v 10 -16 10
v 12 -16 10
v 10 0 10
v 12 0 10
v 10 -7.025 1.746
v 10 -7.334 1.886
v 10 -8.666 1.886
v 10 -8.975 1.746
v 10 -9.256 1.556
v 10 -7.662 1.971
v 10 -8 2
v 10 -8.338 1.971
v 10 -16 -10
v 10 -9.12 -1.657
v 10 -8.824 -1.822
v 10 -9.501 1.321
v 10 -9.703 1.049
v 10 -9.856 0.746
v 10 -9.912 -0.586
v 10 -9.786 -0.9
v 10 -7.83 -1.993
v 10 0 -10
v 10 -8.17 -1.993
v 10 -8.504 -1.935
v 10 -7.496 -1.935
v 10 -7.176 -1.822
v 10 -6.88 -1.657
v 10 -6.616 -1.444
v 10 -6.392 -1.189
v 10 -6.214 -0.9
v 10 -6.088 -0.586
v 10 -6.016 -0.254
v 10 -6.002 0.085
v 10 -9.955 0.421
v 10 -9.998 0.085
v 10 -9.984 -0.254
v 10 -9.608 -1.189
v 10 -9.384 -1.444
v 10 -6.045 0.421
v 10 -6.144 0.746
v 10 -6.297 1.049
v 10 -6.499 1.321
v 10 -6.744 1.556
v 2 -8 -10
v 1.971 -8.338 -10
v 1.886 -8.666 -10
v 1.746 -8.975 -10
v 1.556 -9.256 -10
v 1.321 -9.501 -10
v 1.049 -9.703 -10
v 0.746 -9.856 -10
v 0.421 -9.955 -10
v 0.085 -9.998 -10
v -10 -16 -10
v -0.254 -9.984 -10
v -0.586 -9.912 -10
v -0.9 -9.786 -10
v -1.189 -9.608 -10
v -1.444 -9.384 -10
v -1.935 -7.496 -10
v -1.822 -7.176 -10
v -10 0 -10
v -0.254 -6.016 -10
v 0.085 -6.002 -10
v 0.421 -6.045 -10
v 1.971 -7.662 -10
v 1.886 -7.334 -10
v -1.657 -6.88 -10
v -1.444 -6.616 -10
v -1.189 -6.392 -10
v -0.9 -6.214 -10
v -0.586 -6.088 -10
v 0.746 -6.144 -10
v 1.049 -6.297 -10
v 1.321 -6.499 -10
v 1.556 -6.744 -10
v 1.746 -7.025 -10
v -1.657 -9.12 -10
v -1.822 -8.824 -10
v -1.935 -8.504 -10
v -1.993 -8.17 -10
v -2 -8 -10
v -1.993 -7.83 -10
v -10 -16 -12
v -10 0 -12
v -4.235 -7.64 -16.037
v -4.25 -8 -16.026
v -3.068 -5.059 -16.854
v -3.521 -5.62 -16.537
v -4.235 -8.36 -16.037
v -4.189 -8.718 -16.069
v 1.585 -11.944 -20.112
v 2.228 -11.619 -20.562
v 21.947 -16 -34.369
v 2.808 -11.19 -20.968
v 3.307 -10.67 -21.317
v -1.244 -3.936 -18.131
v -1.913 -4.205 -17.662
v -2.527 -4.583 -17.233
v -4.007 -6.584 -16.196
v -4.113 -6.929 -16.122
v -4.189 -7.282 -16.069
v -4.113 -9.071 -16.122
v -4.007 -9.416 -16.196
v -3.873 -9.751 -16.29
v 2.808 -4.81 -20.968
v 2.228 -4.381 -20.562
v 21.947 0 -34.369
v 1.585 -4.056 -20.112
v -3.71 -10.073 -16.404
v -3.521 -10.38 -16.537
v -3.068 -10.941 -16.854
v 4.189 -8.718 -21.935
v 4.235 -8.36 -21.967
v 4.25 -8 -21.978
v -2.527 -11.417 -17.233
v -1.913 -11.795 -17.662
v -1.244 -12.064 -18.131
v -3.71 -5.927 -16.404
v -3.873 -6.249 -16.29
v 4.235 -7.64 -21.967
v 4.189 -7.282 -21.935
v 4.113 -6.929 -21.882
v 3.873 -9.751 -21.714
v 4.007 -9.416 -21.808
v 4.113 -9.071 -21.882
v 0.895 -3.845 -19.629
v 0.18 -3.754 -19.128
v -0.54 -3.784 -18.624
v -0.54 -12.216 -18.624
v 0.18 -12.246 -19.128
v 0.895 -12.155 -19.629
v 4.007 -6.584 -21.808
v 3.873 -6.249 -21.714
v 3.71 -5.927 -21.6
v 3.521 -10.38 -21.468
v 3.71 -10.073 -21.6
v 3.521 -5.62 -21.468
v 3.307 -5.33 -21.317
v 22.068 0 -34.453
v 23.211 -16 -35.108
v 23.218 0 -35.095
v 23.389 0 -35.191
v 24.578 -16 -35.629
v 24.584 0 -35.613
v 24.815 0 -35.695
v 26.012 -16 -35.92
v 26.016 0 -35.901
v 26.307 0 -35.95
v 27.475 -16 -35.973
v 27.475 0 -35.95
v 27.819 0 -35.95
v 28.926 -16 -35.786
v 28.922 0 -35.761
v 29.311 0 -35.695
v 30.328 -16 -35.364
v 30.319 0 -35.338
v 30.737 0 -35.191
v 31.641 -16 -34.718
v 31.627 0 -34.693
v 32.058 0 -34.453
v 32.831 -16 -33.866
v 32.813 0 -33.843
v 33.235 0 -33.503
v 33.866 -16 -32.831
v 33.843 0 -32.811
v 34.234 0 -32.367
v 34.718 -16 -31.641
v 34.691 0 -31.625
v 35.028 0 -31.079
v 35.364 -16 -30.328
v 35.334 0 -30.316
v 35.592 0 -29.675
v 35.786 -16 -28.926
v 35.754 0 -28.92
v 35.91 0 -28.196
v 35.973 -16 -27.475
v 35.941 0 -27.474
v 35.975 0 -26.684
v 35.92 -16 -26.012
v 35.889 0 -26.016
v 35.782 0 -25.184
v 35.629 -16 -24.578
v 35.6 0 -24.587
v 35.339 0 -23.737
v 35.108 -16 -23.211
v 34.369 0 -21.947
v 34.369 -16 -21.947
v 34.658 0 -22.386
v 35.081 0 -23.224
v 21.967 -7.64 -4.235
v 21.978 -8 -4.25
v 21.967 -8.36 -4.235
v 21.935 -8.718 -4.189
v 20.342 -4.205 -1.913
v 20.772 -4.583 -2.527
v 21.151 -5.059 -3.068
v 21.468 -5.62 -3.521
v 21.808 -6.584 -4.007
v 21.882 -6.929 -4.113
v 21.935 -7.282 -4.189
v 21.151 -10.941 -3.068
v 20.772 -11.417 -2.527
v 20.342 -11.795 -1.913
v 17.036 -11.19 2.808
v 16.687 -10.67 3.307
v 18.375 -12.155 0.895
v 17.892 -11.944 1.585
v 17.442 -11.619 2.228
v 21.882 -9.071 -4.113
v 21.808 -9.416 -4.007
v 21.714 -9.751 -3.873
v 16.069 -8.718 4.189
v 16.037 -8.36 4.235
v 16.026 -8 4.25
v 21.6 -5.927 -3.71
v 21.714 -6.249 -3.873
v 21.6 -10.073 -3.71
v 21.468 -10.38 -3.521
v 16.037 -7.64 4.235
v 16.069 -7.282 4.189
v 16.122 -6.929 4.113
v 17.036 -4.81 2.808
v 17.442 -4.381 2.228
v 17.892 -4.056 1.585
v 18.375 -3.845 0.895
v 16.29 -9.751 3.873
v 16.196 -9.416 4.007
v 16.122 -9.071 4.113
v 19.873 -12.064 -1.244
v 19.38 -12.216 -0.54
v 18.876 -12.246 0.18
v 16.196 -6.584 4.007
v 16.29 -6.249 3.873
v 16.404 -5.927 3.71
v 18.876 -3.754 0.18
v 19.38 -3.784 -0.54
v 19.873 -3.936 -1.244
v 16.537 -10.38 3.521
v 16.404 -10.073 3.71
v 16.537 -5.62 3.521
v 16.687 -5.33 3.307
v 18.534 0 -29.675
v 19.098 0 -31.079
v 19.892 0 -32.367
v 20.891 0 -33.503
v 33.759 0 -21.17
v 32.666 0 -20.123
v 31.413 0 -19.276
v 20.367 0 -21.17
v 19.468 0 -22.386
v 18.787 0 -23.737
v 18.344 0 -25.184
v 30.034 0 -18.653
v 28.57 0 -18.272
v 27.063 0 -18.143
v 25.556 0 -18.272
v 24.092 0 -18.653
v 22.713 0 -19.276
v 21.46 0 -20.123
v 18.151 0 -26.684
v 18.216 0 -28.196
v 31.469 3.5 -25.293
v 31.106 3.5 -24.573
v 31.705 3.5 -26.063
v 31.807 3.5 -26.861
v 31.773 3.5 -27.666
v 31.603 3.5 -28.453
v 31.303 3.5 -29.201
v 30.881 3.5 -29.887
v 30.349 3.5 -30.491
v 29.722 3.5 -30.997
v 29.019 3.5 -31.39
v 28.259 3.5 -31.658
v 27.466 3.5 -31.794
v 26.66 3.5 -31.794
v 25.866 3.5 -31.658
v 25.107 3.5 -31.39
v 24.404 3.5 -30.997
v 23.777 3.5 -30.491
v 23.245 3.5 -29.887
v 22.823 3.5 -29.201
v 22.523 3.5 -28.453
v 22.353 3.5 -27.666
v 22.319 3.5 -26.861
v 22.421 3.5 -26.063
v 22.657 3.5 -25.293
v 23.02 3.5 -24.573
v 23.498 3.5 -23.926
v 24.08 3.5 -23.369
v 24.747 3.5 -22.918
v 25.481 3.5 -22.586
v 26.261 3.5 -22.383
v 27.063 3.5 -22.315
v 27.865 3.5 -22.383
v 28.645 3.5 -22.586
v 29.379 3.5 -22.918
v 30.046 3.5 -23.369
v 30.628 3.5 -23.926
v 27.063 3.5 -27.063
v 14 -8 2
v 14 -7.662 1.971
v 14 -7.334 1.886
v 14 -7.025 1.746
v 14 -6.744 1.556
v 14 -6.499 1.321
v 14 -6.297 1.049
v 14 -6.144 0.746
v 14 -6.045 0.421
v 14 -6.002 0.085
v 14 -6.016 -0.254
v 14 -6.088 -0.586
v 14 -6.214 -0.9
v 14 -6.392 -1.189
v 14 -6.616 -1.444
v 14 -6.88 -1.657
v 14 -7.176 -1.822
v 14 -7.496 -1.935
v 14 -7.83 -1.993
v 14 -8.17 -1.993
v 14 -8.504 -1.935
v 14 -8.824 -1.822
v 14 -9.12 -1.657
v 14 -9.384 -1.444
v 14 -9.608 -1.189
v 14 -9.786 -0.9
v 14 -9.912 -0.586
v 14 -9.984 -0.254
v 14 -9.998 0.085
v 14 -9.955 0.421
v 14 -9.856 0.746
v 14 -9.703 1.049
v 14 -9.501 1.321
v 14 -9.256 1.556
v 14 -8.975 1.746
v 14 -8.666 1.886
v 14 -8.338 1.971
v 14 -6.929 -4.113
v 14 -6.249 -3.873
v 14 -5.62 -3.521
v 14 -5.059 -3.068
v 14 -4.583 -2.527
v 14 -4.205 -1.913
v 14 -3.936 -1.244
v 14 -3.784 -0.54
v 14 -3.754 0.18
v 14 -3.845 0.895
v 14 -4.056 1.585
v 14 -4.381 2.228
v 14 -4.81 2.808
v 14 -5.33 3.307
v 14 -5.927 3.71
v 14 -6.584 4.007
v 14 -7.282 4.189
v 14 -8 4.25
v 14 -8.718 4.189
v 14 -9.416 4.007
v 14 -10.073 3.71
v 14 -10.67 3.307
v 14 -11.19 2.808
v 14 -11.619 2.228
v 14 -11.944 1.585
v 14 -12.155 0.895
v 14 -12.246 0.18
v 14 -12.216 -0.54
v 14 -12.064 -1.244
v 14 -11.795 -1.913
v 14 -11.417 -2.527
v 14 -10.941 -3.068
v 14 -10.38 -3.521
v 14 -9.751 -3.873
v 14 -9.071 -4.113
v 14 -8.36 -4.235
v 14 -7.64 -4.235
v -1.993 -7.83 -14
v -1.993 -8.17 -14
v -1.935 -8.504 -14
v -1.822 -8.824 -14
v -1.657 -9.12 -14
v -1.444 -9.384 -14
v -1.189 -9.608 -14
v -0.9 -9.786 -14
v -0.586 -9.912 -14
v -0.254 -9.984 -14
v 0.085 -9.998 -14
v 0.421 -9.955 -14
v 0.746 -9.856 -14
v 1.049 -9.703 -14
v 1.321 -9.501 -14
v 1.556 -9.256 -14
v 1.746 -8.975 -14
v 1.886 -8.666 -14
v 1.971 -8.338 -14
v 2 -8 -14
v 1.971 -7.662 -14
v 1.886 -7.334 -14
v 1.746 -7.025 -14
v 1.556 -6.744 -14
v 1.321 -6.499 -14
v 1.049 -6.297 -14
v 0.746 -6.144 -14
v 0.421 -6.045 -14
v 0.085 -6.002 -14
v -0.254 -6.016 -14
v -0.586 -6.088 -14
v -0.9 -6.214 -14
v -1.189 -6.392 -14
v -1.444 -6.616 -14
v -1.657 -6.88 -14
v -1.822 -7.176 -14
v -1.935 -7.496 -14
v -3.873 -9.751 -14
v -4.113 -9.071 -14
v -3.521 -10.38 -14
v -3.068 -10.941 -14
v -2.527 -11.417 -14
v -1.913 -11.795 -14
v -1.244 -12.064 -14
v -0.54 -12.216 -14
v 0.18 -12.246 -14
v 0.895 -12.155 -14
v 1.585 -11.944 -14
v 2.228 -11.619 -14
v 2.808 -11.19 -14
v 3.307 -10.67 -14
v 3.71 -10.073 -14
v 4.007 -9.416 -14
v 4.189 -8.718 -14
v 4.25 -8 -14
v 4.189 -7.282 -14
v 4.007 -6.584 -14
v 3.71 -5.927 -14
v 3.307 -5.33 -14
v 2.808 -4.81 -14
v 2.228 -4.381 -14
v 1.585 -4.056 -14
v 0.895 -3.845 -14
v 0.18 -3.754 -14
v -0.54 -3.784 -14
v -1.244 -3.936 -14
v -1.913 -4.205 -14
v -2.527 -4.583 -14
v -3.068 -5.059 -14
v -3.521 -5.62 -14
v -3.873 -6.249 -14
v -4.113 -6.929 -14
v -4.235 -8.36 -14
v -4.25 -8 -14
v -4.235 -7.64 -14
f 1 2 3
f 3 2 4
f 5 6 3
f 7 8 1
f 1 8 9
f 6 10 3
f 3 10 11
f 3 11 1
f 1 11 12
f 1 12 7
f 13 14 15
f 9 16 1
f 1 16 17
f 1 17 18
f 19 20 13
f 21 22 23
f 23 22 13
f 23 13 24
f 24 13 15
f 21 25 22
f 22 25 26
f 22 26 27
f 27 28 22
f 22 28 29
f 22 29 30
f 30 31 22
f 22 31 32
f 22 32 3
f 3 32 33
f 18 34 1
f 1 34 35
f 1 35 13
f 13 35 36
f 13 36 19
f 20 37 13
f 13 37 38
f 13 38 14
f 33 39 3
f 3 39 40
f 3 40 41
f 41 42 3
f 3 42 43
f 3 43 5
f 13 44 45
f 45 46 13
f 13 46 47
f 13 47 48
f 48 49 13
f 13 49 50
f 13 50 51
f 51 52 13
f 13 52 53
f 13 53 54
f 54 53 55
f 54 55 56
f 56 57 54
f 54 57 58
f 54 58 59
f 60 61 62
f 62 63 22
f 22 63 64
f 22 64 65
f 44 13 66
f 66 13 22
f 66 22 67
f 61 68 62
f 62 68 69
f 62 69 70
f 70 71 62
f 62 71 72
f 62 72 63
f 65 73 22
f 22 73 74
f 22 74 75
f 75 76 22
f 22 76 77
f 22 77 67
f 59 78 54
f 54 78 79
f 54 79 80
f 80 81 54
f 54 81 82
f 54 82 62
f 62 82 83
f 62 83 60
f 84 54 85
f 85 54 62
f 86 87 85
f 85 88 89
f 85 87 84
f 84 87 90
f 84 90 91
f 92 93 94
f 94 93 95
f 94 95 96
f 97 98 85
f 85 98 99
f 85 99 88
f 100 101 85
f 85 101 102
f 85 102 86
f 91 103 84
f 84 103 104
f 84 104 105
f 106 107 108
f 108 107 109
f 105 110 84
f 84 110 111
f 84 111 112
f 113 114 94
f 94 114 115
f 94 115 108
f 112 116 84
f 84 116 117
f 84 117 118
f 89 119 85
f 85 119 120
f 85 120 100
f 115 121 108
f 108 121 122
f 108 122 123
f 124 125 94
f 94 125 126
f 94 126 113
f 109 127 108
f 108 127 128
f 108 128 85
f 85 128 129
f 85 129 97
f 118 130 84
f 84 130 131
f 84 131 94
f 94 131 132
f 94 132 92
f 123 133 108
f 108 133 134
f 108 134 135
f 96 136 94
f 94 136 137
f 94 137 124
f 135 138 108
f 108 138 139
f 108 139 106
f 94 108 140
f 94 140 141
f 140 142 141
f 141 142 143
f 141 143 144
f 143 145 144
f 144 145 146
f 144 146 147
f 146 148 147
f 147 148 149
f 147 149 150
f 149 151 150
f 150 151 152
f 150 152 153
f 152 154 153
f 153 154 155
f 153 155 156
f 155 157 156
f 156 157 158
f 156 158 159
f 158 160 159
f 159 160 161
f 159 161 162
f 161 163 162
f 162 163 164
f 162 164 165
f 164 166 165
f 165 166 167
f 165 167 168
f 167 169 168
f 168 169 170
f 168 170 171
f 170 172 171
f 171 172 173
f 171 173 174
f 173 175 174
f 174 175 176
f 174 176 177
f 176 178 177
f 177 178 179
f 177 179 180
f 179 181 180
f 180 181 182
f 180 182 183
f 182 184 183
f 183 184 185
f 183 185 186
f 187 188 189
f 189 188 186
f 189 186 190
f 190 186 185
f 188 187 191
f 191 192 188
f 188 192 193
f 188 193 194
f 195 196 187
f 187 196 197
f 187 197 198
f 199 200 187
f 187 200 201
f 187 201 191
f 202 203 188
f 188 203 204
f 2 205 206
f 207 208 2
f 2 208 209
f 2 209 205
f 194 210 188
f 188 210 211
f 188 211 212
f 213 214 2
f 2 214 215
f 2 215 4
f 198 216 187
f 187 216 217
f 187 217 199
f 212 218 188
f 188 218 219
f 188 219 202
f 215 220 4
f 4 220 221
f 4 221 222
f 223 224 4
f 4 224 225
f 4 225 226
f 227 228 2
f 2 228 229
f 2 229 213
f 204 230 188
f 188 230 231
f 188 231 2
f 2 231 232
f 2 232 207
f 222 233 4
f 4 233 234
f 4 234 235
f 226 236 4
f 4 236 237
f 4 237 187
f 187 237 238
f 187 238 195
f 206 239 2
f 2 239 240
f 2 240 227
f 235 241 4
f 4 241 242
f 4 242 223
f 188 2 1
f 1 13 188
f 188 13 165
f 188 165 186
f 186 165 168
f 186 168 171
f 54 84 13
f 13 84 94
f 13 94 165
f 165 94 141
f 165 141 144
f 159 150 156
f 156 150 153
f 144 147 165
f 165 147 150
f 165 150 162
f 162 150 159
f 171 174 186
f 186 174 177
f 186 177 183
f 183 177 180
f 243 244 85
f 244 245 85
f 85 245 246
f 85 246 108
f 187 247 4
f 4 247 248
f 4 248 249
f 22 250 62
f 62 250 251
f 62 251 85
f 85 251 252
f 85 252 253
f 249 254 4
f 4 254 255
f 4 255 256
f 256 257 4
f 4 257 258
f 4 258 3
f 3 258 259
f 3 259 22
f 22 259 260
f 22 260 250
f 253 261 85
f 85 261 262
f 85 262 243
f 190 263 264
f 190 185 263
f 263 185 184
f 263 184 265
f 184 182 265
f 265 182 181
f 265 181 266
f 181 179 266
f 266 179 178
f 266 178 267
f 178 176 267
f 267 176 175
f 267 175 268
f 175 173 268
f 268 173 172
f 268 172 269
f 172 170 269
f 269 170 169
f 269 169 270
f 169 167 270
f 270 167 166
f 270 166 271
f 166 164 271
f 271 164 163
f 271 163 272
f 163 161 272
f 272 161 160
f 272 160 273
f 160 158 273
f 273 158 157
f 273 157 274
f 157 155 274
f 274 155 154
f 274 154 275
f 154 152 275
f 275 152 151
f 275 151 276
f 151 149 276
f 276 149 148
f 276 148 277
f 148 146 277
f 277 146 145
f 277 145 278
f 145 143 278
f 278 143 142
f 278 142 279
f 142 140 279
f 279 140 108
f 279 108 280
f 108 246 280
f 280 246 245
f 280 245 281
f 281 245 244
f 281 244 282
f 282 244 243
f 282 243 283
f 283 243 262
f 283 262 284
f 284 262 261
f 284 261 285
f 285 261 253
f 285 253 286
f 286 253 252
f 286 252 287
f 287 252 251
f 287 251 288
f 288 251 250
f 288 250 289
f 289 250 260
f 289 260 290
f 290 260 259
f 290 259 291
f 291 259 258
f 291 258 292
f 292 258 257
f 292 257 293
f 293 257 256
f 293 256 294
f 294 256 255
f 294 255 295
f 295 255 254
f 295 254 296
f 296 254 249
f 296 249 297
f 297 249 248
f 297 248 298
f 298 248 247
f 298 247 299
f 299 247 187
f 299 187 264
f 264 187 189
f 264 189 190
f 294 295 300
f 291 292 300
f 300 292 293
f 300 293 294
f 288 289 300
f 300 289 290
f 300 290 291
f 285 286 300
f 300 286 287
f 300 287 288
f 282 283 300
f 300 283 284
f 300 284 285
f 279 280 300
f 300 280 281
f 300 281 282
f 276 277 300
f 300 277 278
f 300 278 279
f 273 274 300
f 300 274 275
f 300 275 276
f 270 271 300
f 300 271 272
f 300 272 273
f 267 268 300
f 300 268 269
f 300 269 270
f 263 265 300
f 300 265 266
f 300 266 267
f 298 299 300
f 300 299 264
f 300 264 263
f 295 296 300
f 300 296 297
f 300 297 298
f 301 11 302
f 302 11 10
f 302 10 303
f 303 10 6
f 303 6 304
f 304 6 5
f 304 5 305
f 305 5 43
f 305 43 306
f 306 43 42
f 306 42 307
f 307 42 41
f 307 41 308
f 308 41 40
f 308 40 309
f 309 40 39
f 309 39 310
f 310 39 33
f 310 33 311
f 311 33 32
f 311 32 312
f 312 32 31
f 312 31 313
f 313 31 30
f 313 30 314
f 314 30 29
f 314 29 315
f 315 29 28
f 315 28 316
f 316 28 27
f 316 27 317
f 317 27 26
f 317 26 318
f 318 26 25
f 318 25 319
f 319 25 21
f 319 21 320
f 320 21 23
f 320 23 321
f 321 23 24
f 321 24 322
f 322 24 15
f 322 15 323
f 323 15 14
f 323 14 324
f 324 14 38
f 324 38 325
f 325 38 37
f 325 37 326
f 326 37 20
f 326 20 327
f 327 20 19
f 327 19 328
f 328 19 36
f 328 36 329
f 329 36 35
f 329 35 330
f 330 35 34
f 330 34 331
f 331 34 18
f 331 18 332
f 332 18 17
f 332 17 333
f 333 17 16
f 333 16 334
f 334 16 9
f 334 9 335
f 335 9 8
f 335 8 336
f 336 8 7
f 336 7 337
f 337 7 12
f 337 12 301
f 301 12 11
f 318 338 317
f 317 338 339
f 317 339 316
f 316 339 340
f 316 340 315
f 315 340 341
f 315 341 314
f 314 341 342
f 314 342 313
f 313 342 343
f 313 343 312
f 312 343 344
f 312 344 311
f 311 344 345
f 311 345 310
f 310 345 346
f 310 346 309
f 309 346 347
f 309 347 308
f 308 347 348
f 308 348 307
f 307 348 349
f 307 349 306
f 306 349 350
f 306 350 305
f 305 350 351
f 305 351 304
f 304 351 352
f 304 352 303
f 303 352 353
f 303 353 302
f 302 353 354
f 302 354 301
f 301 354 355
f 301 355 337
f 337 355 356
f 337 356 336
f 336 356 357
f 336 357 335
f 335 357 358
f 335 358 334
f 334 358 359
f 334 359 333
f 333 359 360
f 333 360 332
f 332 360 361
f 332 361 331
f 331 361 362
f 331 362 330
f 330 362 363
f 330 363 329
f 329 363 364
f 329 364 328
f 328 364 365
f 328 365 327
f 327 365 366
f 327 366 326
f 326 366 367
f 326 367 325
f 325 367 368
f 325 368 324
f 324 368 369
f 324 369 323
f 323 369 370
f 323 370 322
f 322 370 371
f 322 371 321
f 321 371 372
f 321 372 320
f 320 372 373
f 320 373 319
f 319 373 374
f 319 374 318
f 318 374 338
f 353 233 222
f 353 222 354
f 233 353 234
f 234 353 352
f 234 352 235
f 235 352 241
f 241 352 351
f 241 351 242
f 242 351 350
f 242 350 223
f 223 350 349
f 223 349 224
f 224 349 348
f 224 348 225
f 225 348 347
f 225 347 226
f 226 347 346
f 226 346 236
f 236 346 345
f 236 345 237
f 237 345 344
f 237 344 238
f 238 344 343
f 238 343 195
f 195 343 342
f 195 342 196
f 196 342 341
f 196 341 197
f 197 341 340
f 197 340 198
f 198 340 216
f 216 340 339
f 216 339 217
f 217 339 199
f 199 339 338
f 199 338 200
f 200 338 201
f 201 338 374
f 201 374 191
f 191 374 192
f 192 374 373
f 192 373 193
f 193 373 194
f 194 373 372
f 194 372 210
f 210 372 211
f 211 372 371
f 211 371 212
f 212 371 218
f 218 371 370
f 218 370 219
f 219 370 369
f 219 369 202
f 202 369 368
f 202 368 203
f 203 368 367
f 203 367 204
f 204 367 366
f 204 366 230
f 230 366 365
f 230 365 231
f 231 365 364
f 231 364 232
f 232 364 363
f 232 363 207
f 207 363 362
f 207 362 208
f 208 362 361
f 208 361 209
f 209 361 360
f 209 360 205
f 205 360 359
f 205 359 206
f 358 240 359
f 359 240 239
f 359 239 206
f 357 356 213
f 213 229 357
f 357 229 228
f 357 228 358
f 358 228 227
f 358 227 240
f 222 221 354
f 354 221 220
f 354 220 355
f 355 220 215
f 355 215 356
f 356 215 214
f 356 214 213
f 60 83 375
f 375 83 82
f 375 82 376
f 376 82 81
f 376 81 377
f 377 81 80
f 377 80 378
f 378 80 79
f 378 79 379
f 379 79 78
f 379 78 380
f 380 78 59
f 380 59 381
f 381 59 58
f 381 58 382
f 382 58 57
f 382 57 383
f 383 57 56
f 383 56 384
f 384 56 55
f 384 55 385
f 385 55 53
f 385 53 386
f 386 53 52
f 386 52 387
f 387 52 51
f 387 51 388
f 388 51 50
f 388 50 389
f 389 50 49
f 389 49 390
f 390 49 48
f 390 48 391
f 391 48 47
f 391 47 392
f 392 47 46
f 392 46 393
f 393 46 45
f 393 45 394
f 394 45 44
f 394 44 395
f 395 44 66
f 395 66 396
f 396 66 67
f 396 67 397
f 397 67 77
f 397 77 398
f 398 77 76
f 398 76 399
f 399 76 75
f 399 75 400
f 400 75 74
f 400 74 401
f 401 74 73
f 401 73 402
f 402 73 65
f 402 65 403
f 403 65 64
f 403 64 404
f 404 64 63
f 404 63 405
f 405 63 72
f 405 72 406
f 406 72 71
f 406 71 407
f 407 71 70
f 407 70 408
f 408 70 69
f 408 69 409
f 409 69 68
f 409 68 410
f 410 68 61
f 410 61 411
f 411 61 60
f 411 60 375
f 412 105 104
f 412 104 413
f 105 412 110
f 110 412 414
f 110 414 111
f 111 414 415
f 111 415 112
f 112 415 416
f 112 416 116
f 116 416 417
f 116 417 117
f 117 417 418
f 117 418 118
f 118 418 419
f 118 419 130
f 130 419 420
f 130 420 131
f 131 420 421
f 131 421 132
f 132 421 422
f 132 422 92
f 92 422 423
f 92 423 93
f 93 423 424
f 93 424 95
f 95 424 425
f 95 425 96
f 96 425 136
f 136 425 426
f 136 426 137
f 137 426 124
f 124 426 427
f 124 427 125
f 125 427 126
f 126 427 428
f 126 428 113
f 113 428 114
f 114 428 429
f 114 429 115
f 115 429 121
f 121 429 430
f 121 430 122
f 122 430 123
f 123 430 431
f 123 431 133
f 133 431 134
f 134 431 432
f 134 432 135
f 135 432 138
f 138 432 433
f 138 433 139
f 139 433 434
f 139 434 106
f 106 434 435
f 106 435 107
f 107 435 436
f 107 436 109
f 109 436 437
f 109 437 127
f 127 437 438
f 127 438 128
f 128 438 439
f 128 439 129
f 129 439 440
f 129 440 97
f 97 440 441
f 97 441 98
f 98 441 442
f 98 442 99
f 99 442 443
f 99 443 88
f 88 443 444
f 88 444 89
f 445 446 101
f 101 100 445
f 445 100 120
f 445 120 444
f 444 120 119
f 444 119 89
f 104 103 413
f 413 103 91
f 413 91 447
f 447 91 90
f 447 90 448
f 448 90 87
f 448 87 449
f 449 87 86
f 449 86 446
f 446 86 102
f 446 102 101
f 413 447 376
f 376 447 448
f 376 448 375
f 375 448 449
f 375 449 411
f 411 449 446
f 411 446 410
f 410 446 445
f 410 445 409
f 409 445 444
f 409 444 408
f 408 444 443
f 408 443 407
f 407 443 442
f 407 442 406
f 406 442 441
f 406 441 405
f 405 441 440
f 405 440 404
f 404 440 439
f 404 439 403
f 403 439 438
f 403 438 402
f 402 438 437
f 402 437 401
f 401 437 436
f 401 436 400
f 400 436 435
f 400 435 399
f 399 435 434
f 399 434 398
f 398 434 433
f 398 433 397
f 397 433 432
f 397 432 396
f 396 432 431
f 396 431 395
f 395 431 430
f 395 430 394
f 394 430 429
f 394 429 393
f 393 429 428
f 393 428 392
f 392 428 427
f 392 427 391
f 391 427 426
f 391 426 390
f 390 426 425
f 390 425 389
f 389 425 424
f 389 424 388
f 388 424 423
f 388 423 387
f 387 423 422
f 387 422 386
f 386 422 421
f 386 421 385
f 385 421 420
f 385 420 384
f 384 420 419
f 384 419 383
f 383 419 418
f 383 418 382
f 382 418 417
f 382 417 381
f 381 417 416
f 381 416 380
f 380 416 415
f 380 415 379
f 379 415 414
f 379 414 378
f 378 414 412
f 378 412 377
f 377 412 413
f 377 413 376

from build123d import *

# Parameters (mm, degrees)
BOSS_EXTRUDE1_DEPTH = 16
SKETCH10_R          = 8.9195787
BOSS_EXTRUDE8_DEPTH = 3.5
BOSS_EXTRUDE8_TAPER = 50
SKETCH12_R          = 2
CUT_EXTRUDE3_DEPTH  = 48.178799534
CUT_EXTRUDE4_START  = -4
SKETCH13_R          = 4.25
CUT_EXTRUDE4_DEPTH  = 44.178799534


with BuildPart() as part:
    # Sketch1 → Boss-Extrude1 (new body)
    with BuildSketch(Plane(origin=(0, 0, 0), x_dir=(1, 0, 0), z_dir=(0, 1, 0))):
        with BuildLine():
            Line((-10, 10), (10, 10))
            Line((10, 10), (10, -10))
            Line((10, -10), (12, -10))
            Line((12, -10), (34.369481018, 21.946929727))
            ThreePointArc((34.369481018, 21.946929727), (33.370084476, 33.370084476), (21.946929727, 34.369481018))
            Line((21.946929727, 34.369481018), (-10, 12))
            Line((-10, 12), (-10, 10))
        make_face()
    extrude(amount=-BOSS_EXTRUDE1_DEPTH)

    # Sketch10 → Boss-Extrude8 (add)
    with BuildSketch(Plane(origin=(0, 0, 0), x_dir=(1, 0, 0), z_dir=(0, 1, 0))):
        with Locations((27.062989892, 27.062989892)):
            Circle(SKETCH10_R)
    extrude(amount=BOSS_EXTRUDE8_DEPTH, taper=BOSS_EXTRUDE8_TAPER)

    # Sketch12 → Cut-Extrude3 (cut, through all)
    with BuildSketch(Plane.ZY.offset(-10)):
        with Locations((0, -8)):
            Circle(SKETCH12_R)
    cut_extrude3 = extrude(amount=-CUT_EXTRUDE3_DEPTH, mode=Mode.SUBTRACT)

    # Sketch13 → Cut-Extrude4 (cut, through all)
    with BuildSketch(Plane.ZY.offset(-10).offset(CUT_EXTRUDE4_START)):
        with Locations((0, -8)):
            Circle(SKETCH13_R)
    cut_extrude4 = extrude(amount=-CUT_EXTRUDE4_DEPTH, mode=Mode.SUBTRACT)

    # Mirror3: Cut-Extrude3, Cut-Extrude4 across plane
    add(cut_extrude3.mirror(Plane(origin=(0, 0, 0), x_dir=(-0.7071067811865478, 0, 0.7071067811865472), z_dir=(-0.7071067811865475, 0, -0.7071067811865477))), mode=Mode.SUBTRACT)
    add(cut_extrude4.mirror(Plane(origin=(0, 0, 0), x_dir=(-0.7071067811865478, 0, 0.7071067811865472), z_dir=(-0.7071067811865475, 0, -0.7071067811865477))), mode=Mode.SUBTRACT)


solid = part.part
